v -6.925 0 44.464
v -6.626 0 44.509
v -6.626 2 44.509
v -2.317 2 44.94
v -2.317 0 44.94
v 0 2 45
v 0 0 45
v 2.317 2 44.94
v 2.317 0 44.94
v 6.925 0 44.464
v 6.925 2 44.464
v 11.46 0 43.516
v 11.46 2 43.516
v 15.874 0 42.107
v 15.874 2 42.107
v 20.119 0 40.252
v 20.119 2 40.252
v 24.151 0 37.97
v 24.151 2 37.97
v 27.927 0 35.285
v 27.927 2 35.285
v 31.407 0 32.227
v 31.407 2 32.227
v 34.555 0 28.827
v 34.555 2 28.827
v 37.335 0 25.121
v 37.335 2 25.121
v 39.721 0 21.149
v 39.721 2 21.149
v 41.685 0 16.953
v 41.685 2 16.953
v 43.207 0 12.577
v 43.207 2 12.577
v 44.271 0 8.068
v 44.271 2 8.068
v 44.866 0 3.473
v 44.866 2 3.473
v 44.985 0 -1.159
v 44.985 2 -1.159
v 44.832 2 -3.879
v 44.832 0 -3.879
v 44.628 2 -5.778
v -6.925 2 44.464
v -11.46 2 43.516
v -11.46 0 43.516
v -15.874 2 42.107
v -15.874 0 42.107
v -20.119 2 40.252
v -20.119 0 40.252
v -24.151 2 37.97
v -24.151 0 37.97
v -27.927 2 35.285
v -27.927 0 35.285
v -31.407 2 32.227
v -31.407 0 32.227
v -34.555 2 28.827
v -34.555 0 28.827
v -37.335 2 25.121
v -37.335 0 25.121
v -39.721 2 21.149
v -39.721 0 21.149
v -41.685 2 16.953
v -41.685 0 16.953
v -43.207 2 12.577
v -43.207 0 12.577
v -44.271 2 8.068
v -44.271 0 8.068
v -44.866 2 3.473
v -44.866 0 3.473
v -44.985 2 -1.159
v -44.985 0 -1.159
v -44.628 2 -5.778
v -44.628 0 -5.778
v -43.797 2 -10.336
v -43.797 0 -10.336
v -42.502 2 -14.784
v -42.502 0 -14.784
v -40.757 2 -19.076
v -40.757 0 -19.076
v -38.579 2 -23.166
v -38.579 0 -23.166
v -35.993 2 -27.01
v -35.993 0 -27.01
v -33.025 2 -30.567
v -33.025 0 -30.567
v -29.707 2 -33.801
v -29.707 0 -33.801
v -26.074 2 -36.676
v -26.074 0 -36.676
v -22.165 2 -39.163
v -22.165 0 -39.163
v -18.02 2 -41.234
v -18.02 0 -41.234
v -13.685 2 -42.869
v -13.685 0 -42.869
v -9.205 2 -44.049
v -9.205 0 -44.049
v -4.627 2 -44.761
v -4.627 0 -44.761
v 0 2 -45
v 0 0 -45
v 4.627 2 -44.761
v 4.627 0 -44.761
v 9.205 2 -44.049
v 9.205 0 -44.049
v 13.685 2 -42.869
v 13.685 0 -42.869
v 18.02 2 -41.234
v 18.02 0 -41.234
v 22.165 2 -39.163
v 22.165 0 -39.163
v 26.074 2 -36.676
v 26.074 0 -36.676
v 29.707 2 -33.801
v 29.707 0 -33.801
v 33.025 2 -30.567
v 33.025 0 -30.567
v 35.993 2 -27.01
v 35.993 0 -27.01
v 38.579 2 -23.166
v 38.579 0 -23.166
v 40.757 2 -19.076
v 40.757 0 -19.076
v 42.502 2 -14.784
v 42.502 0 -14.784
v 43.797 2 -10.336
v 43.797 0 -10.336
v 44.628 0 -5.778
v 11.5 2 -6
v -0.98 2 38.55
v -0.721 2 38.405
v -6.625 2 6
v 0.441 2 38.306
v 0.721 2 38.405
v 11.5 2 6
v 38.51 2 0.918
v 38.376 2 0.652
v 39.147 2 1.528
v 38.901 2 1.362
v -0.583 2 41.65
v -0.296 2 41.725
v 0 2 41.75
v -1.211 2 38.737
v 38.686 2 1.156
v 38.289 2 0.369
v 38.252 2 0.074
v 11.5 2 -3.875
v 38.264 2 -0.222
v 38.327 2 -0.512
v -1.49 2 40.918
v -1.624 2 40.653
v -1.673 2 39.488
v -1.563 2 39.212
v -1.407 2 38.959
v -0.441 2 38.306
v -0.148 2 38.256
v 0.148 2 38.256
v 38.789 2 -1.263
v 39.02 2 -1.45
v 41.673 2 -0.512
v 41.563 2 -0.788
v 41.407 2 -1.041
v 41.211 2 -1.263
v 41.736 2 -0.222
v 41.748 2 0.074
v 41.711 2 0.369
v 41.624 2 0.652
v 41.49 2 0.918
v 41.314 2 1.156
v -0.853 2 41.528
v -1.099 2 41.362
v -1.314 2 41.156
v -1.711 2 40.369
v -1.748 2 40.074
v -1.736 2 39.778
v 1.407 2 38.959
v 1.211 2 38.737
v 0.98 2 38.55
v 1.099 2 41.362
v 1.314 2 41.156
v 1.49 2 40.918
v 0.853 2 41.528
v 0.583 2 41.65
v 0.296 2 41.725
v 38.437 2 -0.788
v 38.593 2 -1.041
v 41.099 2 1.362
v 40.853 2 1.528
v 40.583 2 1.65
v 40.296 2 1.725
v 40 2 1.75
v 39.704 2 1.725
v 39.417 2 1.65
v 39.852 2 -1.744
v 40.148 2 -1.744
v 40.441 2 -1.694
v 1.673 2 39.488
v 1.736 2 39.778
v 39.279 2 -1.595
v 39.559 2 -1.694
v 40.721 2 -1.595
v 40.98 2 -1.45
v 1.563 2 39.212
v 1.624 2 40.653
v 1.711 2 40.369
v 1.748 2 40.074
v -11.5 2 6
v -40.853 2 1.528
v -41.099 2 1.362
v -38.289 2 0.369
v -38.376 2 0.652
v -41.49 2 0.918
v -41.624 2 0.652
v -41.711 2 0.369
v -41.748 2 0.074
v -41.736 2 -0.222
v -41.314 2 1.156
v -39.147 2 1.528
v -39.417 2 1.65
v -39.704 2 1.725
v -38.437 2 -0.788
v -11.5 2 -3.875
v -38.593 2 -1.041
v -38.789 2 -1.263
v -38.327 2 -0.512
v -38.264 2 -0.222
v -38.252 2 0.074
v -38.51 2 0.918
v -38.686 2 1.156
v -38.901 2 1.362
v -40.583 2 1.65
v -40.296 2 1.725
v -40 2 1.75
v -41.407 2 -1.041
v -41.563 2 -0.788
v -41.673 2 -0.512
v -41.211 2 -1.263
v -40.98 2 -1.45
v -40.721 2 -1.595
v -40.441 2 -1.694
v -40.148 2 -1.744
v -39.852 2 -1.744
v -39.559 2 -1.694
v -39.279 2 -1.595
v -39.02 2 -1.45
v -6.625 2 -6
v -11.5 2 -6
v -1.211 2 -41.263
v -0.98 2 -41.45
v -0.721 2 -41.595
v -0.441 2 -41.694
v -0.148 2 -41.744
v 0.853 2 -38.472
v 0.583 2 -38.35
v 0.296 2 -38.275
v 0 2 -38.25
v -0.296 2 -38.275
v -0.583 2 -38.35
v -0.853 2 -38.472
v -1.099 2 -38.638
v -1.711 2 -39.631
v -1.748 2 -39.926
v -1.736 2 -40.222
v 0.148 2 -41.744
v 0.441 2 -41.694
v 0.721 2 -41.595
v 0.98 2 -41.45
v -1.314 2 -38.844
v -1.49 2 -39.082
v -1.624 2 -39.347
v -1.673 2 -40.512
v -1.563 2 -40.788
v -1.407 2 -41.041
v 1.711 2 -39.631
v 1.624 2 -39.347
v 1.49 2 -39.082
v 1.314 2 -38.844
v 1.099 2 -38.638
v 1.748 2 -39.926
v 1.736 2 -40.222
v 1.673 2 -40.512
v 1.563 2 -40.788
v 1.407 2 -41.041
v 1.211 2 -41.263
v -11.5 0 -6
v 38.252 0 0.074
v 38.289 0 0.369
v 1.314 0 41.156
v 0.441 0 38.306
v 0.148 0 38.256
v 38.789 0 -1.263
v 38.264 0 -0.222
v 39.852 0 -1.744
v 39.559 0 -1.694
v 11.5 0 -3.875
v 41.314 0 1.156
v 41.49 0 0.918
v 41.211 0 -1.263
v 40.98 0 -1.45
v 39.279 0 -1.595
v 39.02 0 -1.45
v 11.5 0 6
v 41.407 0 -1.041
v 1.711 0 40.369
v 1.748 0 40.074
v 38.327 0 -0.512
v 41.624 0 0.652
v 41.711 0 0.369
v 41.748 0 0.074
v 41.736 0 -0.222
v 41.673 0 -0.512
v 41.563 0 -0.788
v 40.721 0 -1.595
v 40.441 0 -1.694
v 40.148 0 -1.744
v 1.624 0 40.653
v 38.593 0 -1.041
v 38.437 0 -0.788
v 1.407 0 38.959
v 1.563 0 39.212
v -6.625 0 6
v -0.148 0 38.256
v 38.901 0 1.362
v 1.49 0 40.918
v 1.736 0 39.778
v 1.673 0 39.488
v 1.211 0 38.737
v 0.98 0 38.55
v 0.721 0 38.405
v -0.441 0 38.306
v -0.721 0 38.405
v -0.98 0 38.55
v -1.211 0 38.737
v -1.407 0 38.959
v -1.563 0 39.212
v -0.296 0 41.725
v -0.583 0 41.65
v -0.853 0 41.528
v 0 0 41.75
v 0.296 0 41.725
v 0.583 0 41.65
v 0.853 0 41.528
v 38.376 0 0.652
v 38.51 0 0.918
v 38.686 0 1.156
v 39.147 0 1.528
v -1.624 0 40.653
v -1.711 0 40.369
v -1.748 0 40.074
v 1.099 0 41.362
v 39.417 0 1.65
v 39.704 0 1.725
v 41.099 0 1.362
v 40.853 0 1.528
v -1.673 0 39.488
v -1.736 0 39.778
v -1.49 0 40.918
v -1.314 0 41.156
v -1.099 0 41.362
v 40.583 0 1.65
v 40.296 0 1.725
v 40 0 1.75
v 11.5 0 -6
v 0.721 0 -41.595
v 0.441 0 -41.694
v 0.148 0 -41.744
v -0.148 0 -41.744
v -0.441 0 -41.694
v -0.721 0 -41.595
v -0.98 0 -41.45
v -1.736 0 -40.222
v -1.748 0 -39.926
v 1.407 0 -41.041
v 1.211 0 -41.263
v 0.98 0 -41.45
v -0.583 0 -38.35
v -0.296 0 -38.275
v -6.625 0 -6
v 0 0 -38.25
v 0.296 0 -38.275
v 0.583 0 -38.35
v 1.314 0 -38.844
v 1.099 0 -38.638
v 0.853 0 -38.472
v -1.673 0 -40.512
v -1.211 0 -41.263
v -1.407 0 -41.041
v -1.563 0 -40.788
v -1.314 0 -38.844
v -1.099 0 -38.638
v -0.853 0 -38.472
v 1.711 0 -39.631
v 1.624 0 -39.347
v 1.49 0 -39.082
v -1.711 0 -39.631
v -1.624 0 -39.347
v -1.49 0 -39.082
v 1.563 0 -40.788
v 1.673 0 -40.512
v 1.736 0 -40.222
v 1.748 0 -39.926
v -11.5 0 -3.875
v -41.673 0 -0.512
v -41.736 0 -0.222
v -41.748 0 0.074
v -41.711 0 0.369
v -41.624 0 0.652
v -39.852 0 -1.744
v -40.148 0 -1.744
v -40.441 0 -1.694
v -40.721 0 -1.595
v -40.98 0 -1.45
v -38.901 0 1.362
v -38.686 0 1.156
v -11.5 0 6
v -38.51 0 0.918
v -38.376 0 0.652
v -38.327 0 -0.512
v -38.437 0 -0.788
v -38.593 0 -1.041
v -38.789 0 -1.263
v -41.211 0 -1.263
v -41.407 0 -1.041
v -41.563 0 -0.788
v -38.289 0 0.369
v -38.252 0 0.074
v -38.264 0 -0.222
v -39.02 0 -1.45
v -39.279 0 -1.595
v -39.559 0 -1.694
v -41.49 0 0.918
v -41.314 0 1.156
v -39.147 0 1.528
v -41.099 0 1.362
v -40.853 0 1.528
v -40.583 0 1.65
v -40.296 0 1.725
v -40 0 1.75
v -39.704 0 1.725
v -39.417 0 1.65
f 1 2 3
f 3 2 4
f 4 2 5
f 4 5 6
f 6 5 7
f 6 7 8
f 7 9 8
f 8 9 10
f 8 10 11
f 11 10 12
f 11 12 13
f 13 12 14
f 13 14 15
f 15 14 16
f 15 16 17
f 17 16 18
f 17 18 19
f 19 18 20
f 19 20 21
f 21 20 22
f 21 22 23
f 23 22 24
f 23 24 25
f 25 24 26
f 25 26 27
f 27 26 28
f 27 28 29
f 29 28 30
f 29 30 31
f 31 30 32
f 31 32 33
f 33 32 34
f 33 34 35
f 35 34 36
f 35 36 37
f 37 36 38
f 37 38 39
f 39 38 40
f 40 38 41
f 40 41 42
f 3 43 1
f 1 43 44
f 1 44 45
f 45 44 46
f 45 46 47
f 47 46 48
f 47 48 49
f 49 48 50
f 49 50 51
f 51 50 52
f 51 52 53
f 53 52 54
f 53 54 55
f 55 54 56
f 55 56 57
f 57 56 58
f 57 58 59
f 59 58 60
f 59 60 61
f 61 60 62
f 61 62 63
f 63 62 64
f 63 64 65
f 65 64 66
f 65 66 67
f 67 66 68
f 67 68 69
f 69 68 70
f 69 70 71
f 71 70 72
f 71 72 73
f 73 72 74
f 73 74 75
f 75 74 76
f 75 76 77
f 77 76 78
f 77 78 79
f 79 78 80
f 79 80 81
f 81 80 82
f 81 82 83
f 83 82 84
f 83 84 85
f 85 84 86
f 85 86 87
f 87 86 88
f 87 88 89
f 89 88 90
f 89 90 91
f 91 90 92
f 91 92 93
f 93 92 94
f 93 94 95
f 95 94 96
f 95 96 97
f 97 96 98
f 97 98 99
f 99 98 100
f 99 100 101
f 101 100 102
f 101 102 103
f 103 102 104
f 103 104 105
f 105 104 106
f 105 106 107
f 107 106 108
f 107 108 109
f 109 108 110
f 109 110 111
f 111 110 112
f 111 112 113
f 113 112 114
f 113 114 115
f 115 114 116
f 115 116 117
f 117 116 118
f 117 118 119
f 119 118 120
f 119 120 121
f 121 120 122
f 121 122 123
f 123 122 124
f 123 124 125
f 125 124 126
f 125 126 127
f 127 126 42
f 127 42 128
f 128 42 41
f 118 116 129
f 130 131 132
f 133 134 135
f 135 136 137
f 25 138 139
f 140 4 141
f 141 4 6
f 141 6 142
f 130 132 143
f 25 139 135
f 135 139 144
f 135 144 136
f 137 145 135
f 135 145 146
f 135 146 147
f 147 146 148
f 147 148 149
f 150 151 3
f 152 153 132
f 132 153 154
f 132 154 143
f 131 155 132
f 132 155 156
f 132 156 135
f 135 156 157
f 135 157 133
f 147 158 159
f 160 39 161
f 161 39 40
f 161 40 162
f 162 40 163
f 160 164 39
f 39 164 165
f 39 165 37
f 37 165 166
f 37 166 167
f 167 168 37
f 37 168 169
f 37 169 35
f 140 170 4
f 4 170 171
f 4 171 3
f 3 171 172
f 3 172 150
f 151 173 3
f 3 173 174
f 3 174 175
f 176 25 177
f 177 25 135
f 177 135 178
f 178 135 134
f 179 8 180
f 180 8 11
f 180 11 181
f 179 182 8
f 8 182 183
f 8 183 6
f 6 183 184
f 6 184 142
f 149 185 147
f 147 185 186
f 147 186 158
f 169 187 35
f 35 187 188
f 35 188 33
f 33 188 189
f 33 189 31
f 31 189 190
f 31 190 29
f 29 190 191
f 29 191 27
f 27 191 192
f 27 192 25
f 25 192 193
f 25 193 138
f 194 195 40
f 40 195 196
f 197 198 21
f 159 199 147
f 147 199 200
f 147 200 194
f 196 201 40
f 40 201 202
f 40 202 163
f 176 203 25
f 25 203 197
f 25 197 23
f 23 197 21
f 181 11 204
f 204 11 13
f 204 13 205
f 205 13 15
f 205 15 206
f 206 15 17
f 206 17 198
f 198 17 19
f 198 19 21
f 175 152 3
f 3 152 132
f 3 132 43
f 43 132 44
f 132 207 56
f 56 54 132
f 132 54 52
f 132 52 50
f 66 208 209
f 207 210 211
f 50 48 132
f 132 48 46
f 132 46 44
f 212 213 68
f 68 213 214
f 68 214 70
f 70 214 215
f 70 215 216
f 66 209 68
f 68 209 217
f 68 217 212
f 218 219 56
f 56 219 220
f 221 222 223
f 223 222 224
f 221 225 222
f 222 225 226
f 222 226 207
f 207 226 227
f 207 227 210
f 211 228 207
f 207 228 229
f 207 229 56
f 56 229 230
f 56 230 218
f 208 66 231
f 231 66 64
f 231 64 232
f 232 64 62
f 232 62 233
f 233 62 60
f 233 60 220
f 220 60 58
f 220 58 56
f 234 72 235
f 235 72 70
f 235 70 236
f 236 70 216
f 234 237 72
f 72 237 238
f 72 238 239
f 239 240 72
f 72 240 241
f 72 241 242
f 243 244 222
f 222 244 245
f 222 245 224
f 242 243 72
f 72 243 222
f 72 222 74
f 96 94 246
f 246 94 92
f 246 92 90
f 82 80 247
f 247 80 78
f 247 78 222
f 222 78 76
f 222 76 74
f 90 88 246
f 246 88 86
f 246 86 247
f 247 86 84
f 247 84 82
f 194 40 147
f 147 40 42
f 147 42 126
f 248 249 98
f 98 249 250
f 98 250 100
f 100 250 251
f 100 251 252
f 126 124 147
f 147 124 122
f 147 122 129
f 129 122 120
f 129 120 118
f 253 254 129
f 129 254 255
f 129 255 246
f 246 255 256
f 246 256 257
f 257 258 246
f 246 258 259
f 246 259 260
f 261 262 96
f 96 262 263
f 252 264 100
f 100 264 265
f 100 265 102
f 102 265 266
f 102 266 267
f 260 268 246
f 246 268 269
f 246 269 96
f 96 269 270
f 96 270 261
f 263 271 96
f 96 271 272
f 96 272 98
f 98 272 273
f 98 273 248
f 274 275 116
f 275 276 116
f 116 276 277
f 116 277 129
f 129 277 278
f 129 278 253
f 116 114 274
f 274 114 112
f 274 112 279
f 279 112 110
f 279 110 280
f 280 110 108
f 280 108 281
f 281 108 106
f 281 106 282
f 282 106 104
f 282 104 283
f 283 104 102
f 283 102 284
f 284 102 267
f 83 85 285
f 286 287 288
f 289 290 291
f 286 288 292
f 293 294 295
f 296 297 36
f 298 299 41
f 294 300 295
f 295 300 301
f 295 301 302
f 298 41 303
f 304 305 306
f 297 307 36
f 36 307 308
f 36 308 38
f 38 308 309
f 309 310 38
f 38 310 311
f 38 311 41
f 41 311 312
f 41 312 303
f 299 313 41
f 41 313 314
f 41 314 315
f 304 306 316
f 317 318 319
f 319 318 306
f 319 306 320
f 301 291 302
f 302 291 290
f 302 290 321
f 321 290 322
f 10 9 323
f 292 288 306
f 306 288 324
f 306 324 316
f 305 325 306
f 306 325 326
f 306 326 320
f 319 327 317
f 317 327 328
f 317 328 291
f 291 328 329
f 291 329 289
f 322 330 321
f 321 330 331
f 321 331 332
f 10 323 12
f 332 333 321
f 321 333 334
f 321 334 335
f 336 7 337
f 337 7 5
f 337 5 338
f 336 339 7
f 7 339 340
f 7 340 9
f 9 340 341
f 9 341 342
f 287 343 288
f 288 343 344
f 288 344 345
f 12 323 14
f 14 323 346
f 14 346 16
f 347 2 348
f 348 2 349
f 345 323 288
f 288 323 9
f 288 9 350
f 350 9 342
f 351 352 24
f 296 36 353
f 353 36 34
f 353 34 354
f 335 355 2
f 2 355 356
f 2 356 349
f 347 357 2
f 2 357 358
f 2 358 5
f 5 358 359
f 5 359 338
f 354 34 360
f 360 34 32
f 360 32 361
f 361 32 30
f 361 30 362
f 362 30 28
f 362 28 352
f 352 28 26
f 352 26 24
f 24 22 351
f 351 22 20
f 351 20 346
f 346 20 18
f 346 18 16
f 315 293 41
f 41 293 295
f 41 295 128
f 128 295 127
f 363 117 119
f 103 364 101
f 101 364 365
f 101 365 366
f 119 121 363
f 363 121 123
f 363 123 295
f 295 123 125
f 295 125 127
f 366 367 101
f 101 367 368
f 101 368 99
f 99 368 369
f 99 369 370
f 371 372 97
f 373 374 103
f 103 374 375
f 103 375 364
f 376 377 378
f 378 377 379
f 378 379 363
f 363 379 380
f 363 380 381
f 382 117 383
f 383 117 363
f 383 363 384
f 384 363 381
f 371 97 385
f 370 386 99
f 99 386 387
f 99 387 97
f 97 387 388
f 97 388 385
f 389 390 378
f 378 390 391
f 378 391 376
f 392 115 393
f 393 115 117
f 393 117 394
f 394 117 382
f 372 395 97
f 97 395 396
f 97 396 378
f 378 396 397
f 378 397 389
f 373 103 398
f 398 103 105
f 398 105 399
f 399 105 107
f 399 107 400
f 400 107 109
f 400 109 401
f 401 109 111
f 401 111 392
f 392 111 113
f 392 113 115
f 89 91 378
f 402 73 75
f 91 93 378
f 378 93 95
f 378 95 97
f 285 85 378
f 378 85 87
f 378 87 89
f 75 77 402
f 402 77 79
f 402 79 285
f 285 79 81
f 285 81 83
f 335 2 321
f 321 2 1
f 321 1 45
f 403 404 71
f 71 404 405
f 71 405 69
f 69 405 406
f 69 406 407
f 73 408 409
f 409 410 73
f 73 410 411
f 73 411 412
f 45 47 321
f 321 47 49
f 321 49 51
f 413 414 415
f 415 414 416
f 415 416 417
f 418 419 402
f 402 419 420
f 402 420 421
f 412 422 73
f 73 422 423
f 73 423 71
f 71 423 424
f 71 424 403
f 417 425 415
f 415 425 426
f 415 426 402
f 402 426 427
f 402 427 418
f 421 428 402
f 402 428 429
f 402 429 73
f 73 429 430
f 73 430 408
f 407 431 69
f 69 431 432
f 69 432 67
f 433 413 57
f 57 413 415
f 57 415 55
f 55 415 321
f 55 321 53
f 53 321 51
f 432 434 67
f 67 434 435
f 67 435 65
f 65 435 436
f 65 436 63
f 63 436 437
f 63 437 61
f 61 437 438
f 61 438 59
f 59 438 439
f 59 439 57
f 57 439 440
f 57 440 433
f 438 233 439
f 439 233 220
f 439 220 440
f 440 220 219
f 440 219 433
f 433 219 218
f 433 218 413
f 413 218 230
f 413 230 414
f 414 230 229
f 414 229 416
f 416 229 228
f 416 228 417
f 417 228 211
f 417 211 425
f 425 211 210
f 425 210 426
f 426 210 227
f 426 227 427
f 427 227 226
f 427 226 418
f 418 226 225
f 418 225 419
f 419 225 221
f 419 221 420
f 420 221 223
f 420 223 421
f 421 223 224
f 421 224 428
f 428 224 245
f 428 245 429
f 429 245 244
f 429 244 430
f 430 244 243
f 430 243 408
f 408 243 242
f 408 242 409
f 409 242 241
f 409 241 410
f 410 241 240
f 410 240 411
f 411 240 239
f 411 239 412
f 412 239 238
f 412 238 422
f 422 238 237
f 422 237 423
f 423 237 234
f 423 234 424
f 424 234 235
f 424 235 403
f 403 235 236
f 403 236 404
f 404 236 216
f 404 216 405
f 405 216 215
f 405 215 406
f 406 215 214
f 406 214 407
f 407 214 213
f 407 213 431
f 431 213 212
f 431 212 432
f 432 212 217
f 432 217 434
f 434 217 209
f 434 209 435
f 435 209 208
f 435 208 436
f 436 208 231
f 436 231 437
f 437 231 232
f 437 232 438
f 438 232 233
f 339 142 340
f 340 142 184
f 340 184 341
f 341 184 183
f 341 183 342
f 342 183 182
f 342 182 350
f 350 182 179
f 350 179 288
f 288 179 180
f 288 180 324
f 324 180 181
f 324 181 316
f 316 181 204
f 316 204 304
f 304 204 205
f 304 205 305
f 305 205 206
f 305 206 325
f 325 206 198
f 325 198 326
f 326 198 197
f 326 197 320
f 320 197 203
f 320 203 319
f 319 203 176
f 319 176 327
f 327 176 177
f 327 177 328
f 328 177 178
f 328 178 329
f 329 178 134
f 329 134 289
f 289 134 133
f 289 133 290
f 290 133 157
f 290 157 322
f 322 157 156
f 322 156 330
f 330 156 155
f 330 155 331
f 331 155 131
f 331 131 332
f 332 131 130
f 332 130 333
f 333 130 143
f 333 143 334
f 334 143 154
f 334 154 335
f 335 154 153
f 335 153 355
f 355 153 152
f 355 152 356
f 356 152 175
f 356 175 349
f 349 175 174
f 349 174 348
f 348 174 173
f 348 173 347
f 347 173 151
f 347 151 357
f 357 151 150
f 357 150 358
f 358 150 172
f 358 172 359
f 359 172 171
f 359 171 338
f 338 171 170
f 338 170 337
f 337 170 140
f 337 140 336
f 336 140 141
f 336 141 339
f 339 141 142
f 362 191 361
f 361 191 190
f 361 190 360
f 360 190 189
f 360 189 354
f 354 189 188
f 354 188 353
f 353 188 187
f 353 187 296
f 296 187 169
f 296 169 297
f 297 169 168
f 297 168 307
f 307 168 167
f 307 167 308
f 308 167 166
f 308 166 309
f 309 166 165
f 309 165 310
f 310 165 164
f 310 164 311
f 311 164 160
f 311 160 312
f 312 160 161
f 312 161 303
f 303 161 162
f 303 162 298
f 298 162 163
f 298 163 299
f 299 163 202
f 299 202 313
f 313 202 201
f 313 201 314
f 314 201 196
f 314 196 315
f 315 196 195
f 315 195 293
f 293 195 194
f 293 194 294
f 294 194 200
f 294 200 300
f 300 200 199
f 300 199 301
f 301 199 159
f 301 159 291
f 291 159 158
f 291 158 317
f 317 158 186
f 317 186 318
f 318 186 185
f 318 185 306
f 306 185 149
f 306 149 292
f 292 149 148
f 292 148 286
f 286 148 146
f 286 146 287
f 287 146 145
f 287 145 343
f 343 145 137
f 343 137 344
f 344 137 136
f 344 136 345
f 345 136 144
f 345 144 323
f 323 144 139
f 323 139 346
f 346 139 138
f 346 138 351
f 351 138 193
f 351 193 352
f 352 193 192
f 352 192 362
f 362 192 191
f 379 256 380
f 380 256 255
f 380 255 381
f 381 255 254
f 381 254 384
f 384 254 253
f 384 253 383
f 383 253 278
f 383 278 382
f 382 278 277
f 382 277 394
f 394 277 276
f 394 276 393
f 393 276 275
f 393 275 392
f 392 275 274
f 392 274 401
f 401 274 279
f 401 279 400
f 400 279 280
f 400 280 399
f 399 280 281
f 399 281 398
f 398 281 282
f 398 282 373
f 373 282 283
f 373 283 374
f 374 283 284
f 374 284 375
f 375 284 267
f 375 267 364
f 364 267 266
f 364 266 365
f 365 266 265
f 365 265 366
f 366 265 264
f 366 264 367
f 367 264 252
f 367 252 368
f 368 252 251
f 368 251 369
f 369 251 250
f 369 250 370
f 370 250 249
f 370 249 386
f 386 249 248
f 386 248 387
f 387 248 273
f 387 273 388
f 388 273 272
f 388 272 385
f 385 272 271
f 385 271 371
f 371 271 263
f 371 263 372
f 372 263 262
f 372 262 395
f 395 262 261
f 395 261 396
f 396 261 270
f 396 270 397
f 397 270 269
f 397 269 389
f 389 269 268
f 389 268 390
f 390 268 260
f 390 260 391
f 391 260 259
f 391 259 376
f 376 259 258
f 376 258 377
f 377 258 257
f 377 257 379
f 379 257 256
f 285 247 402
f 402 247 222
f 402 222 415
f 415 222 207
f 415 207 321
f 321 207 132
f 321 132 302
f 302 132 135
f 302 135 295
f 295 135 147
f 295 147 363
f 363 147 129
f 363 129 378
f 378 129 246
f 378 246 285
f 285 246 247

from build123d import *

# Parameters (mm, degrees)
SKETCH2_R           = 45
BOSS_EXTRUDE1_DEPTH = 2
SKETCH4_R           = 1.75
CUT_EXTRUDE1_DEPTH  = 64.671029519
SKETCH5_W           = 23
SKETCH5_H           = 12
CUT_EXTRUDE2_DEPTH  = 64.671029519


with BuildPart() as part:
    # Sketch2 → Boss-Extrude1 (new body)
    with BuildSketch(Plane(origin=(0, 0, 0), x_dir=(1, 0, 0), z_dir=(0, 1, 0))):
        with Locations(Location((0, 0, 0), (0, 0, 270))):
            Circle(SKETCH2_R)
    extrude(amount=BOSS_EXTRUDE1_DEPTH)

    # Sketch4 → Cut-Extrude1 (cut, through all)
    with BuildSketch(Plane(origin=(0, 2, 0), x_dir=(1, 0, 0), z_dir=(0, 1, 0))):
        with Locations(Location((0, 40, 0), (0, 0, 270))):
            Circle(SKETCH4_R)
        with Locations(Location((40, 0, 0), (0, 0, 270))):
            Circle(SKETCH4_R)
        with Locations(Location((0, -40, 0), (0, 0, 270))):
            Circle(SKETCH4_R)
        with Locations(Location((-40, 0, 0), (0, 0, 270))):
            Circle(SKETCH4_R)
    extrude(amount=-CUT_EXTRUDE1_DEPTH, mode=Mode.SUBTRACT)

    # Sketch5 → Cut-Extrude2 (cut, through all)
    with BuildSketch(Plane.XZ):
        Rectangle(SKETCH5_W, SKETCH5_H)
    extrude(amount=-CUT_EXTRUDE2_DEPTH, mode=Mode.SUBTRACT)


solid = part.part
